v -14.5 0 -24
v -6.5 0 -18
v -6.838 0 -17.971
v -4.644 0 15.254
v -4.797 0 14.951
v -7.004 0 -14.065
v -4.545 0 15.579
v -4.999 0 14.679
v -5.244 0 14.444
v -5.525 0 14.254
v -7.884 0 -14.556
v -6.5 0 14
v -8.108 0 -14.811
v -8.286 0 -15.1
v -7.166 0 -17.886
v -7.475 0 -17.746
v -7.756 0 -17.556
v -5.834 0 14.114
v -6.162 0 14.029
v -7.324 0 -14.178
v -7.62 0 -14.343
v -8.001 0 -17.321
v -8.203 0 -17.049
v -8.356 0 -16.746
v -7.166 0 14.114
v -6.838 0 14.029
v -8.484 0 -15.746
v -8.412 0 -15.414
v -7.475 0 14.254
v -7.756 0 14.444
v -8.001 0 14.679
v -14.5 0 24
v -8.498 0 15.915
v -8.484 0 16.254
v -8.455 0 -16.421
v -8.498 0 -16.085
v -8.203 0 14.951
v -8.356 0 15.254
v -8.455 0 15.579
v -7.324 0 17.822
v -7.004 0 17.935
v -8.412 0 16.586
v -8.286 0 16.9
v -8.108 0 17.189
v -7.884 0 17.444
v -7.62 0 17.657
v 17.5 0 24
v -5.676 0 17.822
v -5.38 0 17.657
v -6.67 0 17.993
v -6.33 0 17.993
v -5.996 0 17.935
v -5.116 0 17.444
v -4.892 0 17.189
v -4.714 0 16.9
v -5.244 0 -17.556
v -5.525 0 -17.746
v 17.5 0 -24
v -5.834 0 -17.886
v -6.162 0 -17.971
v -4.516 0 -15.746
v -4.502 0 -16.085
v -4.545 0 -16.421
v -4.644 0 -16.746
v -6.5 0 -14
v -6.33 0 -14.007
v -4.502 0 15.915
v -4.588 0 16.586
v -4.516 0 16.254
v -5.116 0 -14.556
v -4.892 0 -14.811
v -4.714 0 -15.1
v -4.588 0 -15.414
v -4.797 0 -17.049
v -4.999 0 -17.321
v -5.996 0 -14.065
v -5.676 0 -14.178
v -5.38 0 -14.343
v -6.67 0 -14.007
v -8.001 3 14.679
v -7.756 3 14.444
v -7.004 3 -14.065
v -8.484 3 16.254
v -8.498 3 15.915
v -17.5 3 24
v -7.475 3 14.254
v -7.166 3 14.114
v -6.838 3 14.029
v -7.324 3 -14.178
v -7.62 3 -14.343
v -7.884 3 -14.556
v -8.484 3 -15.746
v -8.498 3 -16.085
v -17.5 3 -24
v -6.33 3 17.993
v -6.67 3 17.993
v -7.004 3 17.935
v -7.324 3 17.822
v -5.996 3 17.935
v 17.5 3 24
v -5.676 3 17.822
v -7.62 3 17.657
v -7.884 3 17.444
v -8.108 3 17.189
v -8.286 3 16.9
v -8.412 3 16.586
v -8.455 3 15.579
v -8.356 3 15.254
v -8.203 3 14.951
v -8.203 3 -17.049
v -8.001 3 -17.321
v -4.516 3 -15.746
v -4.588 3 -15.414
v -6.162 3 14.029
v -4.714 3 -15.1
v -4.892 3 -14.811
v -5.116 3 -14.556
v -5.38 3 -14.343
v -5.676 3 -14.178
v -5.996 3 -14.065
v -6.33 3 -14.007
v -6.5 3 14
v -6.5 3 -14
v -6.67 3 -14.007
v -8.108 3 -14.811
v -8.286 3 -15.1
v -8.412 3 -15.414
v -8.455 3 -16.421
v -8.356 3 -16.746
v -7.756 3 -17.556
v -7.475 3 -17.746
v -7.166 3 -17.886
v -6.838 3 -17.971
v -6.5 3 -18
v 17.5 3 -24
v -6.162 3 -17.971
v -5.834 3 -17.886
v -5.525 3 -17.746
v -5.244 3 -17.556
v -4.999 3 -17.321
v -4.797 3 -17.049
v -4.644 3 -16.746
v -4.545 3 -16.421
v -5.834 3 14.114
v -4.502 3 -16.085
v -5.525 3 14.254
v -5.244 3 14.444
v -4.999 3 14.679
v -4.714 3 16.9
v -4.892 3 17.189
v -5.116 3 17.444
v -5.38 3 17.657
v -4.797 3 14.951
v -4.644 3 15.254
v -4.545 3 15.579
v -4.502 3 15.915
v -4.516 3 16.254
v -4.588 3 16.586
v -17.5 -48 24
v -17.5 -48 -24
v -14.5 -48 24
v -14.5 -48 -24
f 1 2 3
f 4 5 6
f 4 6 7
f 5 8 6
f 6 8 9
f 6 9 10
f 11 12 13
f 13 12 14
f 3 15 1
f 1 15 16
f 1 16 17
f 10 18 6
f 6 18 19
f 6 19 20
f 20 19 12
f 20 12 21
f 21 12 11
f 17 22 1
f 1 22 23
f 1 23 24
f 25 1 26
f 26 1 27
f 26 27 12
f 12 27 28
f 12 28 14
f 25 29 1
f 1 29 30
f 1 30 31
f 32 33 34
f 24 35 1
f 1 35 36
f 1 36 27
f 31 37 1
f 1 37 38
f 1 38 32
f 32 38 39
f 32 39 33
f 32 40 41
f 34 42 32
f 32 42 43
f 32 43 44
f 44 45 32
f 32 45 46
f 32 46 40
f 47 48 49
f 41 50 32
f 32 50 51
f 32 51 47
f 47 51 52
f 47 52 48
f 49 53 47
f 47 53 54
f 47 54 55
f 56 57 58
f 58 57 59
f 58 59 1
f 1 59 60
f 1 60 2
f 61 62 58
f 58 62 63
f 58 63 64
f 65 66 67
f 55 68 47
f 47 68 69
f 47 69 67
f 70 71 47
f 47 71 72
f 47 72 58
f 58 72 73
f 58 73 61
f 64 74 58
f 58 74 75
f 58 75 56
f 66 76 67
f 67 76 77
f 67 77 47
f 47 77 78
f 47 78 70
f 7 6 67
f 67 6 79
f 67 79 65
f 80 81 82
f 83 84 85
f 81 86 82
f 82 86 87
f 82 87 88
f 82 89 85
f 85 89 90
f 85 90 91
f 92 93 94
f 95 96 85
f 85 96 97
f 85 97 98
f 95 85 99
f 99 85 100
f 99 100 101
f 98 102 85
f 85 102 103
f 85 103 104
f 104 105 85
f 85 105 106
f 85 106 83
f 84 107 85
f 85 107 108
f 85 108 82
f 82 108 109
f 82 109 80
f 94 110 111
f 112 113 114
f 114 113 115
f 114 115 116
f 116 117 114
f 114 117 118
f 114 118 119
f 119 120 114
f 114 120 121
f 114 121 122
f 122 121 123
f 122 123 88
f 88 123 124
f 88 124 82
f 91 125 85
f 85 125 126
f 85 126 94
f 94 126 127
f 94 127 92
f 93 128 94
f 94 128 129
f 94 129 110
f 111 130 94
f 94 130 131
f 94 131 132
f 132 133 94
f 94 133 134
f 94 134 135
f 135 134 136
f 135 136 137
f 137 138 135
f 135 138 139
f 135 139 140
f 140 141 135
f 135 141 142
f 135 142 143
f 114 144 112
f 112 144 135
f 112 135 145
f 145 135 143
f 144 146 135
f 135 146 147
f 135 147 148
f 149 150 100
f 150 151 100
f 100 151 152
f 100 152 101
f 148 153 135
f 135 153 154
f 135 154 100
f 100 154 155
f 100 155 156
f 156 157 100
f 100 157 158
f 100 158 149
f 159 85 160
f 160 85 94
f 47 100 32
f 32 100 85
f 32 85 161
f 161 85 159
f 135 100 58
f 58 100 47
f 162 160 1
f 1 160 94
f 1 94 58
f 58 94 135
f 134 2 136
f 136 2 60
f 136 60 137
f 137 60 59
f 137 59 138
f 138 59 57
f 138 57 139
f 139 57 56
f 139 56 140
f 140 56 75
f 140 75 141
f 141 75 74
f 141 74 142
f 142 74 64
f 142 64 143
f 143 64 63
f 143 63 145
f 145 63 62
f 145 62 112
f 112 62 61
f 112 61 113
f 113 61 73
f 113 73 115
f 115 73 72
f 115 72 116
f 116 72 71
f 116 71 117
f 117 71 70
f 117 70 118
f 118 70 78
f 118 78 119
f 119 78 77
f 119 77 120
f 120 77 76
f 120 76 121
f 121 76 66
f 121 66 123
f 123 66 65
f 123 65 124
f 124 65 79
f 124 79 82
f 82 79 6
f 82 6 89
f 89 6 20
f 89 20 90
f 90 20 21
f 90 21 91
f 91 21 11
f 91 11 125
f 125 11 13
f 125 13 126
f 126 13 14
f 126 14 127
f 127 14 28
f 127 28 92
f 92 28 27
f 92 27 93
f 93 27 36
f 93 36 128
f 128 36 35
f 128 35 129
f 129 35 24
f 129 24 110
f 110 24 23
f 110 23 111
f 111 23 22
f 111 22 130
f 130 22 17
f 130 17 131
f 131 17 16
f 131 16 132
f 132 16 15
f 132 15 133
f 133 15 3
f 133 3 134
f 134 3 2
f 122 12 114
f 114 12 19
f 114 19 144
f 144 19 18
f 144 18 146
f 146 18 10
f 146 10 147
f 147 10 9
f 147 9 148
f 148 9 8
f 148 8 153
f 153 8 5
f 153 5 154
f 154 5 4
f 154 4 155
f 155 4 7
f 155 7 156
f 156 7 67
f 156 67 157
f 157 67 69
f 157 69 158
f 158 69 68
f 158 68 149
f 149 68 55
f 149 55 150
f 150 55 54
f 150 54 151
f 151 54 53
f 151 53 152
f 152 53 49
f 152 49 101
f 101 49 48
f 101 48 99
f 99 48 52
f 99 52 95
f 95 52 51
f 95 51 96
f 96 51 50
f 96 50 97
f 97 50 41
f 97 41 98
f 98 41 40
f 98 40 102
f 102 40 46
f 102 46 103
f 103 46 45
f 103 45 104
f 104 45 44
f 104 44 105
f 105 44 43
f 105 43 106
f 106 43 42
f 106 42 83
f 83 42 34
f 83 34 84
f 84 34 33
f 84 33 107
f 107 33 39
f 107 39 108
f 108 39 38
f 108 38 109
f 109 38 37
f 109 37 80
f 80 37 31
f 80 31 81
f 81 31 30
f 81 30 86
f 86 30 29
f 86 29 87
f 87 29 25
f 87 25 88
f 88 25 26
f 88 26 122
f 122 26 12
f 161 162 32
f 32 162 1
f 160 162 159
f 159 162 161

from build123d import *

# Parameters (mm, degrees)
SKETCH1_W           = 35
SKETCH1_H           = 48
SKETCH1_R           = 2
BOSS_EXTRUDE1_DEPTH = 3
SKETCH2_W           = 3
SKETCH2_H           = 48
BOSS_EXTRUDE2_DEPTH = 48


with BuildPart() as part:
    # Sketch1 → Boss-Extrude1 (new body)
    with BuildSketch(Plane(origin=(0, 0, 0), x_dir=(1, 0, 0), z_dir=(0, 1, 0))):
        Rectangle(SKETCH1_W, SKETCH1_H)
        with Locations(Location((-6.5, 16, 0), (0, 0, 270))):
            Circle(SKETCH1_R, mode=Mode.SUBTRACT)
        with Locations(Location((-6.5, -16, 0), (0, 0, 90))):
            Circle(SKETCH1_R, mode=Mode.SUBTRACT)
    extrude(amount=BOSS_EXTRUDE1_DEPTH)

    # Sketch2 → Boss-Extrude2 (add)
    with BuildSketch(Plane.XZ):
        with Locations((-16, 0)):
            Rectangle(SKETCH2_W, SKETCH2_H)
    extrude(amount=BOSS_EXTRUDE2_DEPTH)


solid = part.part
